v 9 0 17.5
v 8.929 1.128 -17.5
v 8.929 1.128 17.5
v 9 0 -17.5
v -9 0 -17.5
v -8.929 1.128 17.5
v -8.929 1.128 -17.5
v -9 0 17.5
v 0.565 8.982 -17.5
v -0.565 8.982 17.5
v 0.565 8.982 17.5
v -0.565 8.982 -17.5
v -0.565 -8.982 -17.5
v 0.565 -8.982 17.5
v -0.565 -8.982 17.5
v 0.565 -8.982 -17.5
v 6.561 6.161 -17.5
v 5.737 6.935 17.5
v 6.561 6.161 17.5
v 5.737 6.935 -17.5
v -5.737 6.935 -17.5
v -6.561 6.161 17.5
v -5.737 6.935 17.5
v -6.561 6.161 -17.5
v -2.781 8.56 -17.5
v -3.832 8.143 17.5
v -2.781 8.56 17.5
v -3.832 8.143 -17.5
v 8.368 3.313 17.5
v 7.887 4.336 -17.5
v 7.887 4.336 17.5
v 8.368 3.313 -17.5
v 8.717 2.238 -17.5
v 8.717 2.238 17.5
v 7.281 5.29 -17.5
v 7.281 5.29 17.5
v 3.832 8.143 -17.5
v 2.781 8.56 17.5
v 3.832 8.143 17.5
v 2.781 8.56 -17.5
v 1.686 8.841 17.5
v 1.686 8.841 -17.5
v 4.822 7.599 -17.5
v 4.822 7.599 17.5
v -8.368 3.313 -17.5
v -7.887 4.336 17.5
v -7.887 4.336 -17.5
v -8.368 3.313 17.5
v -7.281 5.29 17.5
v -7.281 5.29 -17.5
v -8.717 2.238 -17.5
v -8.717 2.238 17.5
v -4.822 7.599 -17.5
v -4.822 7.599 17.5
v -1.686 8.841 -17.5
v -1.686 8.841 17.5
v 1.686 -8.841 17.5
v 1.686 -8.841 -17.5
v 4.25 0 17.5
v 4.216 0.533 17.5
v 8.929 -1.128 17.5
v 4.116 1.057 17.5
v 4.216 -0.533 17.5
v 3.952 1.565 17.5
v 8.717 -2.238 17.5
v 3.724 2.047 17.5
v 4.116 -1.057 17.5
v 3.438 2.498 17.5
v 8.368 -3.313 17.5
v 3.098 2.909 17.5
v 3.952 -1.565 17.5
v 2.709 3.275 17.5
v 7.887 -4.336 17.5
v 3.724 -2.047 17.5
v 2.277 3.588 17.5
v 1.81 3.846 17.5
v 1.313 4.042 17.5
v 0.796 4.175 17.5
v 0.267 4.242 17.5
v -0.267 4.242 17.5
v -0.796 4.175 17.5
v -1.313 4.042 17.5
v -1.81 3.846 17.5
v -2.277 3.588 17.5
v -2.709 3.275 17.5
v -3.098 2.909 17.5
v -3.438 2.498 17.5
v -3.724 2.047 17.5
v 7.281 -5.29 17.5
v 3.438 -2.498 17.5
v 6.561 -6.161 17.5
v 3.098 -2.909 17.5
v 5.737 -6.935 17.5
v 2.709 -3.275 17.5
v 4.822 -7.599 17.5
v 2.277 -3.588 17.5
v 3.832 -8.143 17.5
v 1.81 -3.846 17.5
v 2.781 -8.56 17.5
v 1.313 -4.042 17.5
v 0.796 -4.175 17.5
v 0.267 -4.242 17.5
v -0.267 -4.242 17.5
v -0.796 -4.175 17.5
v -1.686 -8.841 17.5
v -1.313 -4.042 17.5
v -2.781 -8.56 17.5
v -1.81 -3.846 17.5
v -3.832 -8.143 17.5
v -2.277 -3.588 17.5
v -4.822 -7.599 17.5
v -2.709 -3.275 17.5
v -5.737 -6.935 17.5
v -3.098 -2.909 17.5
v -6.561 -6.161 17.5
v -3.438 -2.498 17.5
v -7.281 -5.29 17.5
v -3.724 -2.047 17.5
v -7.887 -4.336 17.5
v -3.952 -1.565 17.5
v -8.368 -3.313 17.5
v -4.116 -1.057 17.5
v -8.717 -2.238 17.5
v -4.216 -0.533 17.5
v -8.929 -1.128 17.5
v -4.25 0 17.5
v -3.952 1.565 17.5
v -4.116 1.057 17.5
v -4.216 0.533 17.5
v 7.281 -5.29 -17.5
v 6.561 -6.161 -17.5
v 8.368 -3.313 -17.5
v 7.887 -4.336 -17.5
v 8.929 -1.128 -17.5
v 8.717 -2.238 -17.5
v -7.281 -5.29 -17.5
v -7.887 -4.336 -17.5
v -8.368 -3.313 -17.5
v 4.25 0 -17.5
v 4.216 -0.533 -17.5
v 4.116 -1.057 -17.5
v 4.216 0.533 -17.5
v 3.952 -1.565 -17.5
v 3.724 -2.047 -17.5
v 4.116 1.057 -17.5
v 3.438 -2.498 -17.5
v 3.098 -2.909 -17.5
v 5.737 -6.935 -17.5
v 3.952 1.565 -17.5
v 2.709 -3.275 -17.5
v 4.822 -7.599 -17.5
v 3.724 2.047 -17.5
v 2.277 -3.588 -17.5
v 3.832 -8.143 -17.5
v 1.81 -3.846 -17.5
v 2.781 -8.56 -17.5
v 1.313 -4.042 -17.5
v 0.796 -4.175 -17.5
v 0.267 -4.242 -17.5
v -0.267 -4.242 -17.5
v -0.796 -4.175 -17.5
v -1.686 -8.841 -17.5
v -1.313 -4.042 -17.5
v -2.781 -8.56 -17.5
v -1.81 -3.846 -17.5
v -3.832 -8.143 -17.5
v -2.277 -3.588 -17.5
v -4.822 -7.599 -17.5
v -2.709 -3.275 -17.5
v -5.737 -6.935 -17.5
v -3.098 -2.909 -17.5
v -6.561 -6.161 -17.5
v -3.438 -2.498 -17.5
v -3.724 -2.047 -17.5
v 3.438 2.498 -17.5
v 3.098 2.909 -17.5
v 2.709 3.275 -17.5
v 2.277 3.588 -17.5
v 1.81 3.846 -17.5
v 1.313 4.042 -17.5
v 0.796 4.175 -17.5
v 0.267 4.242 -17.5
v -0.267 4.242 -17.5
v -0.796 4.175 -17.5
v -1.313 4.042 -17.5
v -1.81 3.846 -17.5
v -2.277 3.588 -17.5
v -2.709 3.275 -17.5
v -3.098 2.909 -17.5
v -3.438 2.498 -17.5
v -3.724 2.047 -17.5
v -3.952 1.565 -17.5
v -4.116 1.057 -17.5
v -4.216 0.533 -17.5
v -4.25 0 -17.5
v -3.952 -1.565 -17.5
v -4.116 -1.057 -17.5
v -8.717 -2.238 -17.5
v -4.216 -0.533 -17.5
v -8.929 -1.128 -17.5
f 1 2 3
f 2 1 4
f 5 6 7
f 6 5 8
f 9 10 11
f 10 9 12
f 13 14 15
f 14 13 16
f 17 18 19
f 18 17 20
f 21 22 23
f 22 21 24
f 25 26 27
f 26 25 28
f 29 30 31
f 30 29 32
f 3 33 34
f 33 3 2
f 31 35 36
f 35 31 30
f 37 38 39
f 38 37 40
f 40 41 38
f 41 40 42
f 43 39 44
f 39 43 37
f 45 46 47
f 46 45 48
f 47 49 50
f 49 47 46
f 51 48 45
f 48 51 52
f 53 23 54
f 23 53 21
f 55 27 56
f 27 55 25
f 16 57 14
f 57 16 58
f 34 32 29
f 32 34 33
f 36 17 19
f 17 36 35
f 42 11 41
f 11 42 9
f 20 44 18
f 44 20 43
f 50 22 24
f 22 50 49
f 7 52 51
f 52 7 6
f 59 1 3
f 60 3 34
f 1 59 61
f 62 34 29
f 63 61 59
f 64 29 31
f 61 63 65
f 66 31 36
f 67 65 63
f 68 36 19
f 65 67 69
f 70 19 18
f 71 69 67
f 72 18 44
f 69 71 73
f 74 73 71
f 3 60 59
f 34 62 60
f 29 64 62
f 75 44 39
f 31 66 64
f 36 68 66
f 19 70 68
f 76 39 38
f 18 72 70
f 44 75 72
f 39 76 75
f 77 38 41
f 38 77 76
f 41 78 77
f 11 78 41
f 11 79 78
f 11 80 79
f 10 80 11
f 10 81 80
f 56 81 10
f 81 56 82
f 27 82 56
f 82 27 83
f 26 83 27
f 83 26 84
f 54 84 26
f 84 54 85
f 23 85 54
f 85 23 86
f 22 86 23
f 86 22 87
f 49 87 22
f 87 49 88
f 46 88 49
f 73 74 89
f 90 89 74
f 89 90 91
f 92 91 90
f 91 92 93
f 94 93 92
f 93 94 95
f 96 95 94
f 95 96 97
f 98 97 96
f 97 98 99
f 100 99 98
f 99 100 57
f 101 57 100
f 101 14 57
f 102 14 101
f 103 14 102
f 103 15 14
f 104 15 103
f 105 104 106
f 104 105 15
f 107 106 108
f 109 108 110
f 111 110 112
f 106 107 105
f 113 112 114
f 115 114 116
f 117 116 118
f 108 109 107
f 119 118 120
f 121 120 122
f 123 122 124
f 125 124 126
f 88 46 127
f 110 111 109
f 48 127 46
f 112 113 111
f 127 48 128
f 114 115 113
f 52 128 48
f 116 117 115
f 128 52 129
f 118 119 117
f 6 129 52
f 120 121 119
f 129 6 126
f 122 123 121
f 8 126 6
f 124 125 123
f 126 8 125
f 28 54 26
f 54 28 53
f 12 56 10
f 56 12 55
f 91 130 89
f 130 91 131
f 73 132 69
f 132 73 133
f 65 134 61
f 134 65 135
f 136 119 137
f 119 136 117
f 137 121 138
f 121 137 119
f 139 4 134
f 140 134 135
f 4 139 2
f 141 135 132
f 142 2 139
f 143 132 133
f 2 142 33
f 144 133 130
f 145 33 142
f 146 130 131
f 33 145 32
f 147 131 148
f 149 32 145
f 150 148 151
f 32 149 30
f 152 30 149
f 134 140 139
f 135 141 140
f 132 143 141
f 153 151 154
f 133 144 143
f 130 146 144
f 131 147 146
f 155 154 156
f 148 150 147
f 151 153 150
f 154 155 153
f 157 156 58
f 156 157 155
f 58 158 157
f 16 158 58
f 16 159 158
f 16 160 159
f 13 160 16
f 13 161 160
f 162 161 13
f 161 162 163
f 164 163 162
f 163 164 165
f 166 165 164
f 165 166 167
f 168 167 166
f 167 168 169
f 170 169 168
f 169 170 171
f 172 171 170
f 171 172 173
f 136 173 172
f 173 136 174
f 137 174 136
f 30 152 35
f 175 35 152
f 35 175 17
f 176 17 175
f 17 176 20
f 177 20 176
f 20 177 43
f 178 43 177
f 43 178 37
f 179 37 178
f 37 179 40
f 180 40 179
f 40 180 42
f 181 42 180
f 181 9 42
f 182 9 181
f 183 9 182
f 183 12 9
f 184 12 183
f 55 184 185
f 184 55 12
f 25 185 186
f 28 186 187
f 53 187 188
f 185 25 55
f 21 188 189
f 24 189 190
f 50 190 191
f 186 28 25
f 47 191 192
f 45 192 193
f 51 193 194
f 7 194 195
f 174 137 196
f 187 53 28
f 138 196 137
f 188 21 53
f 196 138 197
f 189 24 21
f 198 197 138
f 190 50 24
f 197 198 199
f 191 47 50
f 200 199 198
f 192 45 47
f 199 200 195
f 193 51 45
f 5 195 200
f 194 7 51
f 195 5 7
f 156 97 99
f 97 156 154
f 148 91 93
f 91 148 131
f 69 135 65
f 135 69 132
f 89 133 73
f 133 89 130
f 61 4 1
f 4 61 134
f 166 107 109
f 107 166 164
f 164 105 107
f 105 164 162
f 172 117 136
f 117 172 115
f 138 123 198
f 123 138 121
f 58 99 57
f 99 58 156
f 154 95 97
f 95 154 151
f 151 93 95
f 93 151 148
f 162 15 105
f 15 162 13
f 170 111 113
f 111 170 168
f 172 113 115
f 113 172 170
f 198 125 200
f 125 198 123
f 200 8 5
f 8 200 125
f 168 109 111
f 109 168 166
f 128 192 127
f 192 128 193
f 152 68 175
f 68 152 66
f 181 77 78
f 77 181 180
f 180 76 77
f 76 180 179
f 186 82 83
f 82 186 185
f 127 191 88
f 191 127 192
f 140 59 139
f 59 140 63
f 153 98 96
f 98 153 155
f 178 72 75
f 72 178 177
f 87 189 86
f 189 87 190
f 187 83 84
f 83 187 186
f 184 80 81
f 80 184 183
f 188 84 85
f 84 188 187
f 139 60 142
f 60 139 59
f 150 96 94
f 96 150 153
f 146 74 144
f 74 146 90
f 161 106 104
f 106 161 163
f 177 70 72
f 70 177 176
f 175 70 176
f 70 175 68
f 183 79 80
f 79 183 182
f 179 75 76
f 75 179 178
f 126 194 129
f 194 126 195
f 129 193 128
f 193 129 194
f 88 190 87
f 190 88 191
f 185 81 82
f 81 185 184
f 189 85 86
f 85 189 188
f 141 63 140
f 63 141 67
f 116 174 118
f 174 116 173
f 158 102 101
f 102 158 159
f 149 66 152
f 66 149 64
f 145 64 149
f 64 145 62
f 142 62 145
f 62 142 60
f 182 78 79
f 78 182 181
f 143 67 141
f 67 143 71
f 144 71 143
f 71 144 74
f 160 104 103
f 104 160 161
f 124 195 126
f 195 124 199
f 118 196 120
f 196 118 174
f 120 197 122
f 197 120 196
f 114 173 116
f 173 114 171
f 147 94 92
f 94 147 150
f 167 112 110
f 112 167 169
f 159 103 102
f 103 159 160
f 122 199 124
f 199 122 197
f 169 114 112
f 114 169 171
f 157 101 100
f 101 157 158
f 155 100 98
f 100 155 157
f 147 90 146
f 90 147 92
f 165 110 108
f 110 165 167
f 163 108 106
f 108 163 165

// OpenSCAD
$fn = 50;


difference() {
	union() {
		translate(v = [0, 0, -17.5000000000]) {
			cylinder(h = 35, r = 9.0000000000);
		}
	}
	union() {
		translate(v = [0, 0, -100.0000000000]) {
			cylinder(h = 200, r = 4.2500000000);
		}
	}
}
